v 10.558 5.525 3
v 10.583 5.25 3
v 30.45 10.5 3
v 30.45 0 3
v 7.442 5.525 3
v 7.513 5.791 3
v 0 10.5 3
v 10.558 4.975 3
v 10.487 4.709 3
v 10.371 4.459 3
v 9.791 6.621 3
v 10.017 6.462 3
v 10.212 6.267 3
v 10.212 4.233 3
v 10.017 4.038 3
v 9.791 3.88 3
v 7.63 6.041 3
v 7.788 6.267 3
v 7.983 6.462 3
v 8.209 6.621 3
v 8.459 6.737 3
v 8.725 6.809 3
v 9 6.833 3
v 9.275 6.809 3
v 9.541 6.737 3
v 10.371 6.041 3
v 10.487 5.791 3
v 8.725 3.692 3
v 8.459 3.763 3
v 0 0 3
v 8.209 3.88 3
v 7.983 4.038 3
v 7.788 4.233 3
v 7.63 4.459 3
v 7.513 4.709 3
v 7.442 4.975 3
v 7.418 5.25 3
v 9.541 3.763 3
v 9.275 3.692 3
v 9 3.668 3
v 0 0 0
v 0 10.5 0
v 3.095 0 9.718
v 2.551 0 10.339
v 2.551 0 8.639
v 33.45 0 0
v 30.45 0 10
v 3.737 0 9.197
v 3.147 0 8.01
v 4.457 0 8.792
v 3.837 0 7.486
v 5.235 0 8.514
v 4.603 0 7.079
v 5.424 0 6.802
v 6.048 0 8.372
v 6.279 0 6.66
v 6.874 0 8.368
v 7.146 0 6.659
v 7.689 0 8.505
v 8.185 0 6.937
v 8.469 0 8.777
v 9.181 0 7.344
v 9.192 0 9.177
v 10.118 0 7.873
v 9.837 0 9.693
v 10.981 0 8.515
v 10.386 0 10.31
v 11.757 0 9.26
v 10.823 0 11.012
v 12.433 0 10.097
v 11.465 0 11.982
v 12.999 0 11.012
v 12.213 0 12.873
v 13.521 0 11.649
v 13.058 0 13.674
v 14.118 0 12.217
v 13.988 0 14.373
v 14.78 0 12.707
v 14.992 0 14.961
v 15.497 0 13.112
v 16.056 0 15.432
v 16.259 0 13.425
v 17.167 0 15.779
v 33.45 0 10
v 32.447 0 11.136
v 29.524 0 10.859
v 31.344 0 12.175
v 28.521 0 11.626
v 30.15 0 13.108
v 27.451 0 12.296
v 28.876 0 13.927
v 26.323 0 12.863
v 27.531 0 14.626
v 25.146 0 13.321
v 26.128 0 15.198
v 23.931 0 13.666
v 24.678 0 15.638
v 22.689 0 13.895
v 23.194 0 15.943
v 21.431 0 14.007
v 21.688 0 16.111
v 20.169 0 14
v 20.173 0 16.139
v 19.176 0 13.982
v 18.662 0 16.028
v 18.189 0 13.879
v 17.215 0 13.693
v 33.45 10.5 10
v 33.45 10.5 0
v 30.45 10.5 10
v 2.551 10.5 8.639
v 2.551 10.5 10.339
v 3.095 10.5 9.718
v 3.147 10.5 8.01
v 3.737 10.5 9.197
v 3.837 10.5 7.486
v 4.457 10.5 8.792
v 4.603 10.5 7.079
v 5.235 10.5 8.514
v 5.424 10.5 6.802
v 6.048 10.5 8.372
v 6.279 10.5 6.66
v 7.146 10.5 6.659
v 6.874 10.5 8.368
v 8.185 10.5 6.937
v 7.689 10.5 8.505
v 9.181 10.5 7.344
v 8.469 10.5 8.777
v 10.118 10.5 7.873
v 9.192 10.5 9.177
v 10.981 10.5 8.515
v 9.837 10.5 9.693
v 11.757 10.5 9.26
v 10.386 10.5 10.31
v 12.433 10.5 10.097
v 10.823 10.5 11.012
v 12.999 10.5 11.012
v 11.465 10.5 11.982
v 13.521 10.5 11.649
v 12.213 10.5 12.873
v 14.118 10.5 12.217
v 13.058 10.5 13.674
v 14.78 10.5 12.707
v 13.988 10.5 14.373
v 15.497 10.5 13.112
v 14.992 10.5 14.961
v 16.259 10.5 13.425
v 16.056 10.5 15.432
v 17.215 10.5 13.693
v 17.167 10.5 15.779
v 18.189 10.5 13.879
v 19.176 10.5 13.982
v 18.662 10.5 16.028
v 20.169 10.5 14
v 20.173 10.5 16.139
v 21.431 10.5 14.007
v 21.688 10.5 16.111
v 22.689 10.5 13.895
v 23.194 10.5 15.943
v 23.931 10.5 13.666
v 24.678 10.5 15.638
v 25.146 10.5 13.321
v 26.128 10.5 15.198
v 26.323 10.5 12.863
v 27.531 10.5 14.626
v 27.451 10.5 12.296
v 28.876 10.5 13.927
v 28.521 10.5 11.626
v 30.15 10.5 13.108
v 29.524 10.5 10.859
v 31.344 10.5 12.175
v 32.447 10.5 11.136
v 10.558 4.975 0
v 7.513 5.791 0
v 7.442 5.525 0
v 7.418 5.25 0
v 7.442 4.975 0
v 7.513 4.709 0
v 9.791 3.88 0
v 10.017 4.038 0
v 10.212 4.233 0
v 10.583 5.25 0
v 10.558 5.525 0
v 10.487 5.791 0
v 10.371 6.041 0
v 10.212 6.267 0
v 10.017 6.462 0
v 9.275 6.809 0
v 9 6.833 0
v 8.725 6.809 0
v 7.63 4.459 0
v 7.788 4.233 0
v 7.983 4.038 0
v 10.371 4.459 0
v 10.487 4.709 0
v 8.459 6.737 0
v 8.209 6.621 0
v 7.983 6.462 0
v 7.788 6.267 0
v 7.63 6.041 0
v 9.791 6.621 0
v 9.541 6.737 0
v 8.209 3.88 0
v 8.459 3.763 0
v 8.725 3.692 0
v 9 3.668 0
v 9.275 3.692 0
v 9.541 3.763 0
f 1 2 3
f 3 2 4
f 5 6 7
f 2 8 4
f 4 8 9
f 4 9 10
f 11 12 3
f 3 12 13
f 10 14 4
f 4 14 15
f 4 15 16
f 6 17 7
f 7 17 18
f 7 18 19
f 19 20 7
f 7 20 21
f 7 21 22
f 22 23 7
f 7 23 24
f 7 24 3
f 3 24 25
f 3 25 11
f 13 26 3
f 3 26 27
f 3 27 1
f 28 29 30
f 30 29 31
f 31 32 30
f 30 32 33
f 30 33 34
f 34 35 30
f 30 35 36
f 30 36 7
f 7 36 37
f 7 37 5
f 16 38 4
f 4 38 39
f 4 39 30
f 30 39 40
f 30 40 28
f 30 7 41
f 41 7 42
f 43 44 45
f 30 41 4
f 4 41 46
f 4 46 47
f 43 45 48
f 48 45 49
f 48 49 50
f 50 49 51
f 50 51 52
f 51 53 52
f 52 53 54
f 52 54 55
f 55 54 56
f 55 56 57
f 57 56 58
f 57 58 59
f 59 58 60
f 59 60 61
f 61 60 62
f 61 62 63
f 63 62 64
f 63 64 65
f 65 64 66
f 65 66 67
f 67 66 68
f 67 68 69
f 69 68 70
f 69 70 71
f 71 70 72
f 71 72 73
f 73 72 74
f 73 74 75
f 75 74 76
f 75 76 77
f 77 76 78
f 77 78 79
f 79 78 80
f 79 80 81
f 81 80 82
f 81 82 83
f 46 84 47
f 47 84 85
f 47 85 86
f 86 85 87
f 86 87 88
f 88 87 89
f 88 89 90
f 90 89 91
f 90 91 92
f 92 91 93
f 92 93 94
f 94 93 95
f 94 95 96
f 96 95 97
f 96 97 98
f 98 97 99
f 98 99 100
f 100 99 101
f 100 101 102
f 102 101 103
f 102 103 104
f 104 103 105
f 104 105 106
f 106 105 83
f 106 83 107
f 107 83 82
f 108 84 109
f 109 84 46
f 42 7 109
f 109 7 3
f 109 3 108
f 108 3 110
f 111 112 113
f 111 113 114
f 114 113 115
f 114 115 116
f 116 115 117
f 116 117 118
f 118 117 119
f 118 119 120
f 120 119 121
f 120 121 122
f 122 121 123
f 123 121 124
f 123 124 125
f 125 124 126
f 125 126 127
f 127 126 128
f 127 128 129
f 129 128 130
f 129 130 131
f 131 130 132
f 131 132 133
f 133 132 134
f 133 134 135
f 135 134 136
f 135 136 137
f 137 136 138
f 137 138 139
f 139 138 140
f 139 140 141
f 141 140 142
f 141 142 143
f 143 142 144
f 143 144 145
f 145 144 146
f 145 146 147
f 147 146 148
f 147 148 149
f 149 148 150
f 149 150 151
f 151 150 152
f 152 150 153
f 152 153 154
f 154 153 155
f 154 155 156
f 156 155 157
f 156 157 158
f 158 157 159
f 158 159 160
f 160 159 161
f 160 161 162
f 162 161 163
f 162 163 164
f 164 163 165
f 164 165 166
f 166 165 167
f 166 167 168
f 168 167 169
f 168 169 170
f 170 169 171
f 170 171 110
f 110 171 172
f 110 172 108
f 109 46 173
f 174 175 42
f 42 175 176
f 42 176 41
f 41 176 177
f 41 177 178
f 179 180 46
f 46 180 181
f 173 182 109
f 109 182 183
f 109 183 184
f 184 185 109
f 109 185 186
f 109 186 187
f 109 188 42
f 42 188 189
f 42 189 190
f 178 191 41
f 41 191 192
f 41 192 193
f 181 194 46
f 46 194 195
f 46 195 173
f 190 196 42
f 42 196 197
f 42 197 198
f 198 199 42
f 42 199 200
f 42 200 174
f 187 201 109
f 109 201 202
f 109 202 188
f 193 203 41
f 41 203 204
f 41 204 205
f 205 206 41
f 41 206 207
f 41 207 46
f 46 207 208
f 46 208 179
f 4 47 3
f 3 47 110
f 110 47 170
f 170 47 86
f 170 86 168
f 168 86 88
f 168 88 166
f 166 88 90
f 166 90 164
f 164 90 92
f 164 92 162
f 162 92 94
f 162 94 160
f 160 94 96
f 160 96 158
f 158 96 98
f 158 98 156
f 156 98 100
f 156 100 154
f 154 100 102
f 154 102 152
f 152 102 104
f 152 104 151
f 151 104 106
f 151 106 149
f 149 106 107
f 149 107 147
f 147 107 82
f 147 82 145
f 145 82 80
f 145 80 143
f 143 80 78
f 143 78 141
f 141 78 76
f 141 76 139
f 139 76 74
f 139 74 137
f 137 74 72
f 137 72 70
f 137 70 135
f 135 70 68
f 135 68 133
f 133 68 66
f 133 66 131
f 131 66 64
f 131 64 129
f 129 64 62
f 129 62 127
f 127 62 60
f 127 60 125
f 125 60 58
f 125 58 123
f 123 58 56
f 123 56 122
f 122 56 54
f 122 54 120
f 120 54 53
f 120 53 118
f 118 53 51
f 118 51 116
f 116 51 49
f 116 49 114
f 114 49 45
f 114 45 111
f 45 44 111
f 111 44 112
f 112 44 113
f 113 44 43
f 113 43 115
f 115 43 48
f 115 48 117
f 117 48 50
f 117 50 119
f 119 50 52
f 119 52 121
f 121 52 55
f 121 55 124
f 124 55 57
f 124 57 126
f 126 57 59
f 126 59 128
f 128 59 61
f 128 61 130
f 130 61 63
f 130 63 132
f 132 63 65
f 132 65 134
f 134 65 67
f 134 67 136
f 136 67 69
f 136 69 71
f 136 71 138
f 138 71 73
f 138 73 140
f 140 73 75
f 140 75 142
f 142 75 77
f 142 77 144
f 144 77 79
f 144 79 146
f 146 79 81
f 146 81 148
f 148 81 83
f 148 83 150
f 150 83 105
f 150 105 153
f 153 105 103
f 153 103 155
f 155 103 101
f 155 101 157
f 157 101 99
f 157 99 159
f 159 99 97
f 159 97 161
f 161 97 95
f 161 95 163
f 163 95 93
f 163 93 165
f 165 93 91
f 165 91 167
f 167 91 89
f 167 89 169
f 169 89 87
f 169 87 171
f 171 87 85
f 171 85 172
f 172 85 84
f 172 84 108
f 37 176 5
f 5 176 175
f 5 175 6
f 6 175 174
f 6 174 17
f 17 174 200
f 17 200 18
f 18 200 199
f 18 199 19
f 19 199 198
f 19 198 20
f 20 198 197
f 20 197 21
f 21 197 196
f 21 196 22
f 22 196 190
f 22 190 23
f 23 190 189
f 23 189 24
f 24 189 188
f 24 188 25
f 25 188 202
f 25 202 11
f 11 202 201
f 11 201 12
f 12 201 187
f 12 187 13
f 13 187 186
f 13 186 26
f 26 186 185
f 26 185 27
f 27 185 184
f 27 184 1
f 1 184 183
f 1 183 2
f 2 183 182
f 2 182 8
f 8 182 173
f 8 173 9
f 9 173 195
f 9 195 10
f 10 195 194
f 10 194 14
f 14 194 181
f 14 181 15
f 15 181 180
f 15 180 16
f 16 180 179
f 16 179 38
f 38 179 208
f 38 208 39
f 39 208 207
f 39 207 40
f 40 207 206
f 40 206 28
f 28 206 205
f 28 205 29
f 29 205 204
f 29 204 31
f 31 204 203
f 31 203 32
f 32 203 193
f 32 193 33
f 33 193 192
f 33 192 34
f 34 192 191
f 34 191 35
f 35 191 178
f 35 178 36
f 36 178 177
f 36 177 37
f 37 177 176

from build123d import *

# Parameters (mm, degrees)
SKETCH1_W           = 33.45
SKETCH1_H           = 10.5
BOSS_EXTRUDE1_DEPTH = 3
BOSS_EXTRUDE2_DEPTH = 10.5
CUT_EXTRUDE1_REACH  = 40.598
SKETCH3_R           = 1.5825


with BuildPart() as part:
    # Sketch1 → Boss-Extrude1 (new body)
    with BuildSketch(Plane.XY):
        with Locations((16.725, 5.25)):
            Rectangle(SKETCH1_W, SKETCH1_H)
    extrude(amount=BOSS_EXTRUDE1_DEPTH)

    # Sketch2 → Boss-Extrude2 (add)
    with BuildSketch(Plane.XZ):
        with BuildLine():
            Line((33.45, 3), (33.45, 10))
            ThreePointArc((33.45, 10), (26.127788274, 15.197537565), (17.167255211, 15.778939776))
            ThreePointArc((17.167255211, 15.778939776), (13.513268499, 14.036363917), (10.822706511, 11.011621661))
            ThreePointArc((10.822706511, 11.011621661), (6.874462981, 8.368470255), (2.551142404, 10.339199946))
            Line((2.551142404, 10.339199946), (2.551142404, 8.639199946))
            ThreePointArc((2.551142404, 8.639199946), (4.602955754, 7.079155178), (7.145952658, 6.658626408))
            ThreePointArc((7.145952658, 6.658626408), (10.559689681, 8.1799455), (12.998874454, 11.011621661))
            ThreePointArc((12.998874454, 11.011621661), (14.440986225, 12.472256001), (16.259204718, 13.424737261))
            ThreePointArc((16.259204718, 13.424737261), (18.189418616, 13.879021589), (20.168677104, 14))
            ThreePointArc((20.168677104, 14), (25.739491976, 13.10563656), (30.45, 10))
            Line((30.45, 10), (30.45, 3))
            Line((30.45, 3), (33.45, 3))
        make_face()
    extrude(amount=-BOSS_EXTRUDE2_DEPTH)

    # Sketch3 → Cut-Extrude1 (cut, up to next)
    with BuildSketch(Plane(origin=(0, 0, 0), x_dir=(-1, 0, 0), z_dir=(0, 0, -1)), mode=Mode.PRIVATE) as cut_extrude1_sk1:
        with Locations((-9, 5.25)):
            Circle(SKETCH3_R)
    cut_extrude1_tool1 = extrude(cut_extrude1_sk1.sketch, amount=-CUT_EXTRUDE1_REACH, mode=Mode.PRIVATE) & part.part
    add(cut_extrude1_tool1.solids().sort_by_distance((9, 5.25, 0))[0], mode=Mode.SUBTRACT)


solid = part.part
